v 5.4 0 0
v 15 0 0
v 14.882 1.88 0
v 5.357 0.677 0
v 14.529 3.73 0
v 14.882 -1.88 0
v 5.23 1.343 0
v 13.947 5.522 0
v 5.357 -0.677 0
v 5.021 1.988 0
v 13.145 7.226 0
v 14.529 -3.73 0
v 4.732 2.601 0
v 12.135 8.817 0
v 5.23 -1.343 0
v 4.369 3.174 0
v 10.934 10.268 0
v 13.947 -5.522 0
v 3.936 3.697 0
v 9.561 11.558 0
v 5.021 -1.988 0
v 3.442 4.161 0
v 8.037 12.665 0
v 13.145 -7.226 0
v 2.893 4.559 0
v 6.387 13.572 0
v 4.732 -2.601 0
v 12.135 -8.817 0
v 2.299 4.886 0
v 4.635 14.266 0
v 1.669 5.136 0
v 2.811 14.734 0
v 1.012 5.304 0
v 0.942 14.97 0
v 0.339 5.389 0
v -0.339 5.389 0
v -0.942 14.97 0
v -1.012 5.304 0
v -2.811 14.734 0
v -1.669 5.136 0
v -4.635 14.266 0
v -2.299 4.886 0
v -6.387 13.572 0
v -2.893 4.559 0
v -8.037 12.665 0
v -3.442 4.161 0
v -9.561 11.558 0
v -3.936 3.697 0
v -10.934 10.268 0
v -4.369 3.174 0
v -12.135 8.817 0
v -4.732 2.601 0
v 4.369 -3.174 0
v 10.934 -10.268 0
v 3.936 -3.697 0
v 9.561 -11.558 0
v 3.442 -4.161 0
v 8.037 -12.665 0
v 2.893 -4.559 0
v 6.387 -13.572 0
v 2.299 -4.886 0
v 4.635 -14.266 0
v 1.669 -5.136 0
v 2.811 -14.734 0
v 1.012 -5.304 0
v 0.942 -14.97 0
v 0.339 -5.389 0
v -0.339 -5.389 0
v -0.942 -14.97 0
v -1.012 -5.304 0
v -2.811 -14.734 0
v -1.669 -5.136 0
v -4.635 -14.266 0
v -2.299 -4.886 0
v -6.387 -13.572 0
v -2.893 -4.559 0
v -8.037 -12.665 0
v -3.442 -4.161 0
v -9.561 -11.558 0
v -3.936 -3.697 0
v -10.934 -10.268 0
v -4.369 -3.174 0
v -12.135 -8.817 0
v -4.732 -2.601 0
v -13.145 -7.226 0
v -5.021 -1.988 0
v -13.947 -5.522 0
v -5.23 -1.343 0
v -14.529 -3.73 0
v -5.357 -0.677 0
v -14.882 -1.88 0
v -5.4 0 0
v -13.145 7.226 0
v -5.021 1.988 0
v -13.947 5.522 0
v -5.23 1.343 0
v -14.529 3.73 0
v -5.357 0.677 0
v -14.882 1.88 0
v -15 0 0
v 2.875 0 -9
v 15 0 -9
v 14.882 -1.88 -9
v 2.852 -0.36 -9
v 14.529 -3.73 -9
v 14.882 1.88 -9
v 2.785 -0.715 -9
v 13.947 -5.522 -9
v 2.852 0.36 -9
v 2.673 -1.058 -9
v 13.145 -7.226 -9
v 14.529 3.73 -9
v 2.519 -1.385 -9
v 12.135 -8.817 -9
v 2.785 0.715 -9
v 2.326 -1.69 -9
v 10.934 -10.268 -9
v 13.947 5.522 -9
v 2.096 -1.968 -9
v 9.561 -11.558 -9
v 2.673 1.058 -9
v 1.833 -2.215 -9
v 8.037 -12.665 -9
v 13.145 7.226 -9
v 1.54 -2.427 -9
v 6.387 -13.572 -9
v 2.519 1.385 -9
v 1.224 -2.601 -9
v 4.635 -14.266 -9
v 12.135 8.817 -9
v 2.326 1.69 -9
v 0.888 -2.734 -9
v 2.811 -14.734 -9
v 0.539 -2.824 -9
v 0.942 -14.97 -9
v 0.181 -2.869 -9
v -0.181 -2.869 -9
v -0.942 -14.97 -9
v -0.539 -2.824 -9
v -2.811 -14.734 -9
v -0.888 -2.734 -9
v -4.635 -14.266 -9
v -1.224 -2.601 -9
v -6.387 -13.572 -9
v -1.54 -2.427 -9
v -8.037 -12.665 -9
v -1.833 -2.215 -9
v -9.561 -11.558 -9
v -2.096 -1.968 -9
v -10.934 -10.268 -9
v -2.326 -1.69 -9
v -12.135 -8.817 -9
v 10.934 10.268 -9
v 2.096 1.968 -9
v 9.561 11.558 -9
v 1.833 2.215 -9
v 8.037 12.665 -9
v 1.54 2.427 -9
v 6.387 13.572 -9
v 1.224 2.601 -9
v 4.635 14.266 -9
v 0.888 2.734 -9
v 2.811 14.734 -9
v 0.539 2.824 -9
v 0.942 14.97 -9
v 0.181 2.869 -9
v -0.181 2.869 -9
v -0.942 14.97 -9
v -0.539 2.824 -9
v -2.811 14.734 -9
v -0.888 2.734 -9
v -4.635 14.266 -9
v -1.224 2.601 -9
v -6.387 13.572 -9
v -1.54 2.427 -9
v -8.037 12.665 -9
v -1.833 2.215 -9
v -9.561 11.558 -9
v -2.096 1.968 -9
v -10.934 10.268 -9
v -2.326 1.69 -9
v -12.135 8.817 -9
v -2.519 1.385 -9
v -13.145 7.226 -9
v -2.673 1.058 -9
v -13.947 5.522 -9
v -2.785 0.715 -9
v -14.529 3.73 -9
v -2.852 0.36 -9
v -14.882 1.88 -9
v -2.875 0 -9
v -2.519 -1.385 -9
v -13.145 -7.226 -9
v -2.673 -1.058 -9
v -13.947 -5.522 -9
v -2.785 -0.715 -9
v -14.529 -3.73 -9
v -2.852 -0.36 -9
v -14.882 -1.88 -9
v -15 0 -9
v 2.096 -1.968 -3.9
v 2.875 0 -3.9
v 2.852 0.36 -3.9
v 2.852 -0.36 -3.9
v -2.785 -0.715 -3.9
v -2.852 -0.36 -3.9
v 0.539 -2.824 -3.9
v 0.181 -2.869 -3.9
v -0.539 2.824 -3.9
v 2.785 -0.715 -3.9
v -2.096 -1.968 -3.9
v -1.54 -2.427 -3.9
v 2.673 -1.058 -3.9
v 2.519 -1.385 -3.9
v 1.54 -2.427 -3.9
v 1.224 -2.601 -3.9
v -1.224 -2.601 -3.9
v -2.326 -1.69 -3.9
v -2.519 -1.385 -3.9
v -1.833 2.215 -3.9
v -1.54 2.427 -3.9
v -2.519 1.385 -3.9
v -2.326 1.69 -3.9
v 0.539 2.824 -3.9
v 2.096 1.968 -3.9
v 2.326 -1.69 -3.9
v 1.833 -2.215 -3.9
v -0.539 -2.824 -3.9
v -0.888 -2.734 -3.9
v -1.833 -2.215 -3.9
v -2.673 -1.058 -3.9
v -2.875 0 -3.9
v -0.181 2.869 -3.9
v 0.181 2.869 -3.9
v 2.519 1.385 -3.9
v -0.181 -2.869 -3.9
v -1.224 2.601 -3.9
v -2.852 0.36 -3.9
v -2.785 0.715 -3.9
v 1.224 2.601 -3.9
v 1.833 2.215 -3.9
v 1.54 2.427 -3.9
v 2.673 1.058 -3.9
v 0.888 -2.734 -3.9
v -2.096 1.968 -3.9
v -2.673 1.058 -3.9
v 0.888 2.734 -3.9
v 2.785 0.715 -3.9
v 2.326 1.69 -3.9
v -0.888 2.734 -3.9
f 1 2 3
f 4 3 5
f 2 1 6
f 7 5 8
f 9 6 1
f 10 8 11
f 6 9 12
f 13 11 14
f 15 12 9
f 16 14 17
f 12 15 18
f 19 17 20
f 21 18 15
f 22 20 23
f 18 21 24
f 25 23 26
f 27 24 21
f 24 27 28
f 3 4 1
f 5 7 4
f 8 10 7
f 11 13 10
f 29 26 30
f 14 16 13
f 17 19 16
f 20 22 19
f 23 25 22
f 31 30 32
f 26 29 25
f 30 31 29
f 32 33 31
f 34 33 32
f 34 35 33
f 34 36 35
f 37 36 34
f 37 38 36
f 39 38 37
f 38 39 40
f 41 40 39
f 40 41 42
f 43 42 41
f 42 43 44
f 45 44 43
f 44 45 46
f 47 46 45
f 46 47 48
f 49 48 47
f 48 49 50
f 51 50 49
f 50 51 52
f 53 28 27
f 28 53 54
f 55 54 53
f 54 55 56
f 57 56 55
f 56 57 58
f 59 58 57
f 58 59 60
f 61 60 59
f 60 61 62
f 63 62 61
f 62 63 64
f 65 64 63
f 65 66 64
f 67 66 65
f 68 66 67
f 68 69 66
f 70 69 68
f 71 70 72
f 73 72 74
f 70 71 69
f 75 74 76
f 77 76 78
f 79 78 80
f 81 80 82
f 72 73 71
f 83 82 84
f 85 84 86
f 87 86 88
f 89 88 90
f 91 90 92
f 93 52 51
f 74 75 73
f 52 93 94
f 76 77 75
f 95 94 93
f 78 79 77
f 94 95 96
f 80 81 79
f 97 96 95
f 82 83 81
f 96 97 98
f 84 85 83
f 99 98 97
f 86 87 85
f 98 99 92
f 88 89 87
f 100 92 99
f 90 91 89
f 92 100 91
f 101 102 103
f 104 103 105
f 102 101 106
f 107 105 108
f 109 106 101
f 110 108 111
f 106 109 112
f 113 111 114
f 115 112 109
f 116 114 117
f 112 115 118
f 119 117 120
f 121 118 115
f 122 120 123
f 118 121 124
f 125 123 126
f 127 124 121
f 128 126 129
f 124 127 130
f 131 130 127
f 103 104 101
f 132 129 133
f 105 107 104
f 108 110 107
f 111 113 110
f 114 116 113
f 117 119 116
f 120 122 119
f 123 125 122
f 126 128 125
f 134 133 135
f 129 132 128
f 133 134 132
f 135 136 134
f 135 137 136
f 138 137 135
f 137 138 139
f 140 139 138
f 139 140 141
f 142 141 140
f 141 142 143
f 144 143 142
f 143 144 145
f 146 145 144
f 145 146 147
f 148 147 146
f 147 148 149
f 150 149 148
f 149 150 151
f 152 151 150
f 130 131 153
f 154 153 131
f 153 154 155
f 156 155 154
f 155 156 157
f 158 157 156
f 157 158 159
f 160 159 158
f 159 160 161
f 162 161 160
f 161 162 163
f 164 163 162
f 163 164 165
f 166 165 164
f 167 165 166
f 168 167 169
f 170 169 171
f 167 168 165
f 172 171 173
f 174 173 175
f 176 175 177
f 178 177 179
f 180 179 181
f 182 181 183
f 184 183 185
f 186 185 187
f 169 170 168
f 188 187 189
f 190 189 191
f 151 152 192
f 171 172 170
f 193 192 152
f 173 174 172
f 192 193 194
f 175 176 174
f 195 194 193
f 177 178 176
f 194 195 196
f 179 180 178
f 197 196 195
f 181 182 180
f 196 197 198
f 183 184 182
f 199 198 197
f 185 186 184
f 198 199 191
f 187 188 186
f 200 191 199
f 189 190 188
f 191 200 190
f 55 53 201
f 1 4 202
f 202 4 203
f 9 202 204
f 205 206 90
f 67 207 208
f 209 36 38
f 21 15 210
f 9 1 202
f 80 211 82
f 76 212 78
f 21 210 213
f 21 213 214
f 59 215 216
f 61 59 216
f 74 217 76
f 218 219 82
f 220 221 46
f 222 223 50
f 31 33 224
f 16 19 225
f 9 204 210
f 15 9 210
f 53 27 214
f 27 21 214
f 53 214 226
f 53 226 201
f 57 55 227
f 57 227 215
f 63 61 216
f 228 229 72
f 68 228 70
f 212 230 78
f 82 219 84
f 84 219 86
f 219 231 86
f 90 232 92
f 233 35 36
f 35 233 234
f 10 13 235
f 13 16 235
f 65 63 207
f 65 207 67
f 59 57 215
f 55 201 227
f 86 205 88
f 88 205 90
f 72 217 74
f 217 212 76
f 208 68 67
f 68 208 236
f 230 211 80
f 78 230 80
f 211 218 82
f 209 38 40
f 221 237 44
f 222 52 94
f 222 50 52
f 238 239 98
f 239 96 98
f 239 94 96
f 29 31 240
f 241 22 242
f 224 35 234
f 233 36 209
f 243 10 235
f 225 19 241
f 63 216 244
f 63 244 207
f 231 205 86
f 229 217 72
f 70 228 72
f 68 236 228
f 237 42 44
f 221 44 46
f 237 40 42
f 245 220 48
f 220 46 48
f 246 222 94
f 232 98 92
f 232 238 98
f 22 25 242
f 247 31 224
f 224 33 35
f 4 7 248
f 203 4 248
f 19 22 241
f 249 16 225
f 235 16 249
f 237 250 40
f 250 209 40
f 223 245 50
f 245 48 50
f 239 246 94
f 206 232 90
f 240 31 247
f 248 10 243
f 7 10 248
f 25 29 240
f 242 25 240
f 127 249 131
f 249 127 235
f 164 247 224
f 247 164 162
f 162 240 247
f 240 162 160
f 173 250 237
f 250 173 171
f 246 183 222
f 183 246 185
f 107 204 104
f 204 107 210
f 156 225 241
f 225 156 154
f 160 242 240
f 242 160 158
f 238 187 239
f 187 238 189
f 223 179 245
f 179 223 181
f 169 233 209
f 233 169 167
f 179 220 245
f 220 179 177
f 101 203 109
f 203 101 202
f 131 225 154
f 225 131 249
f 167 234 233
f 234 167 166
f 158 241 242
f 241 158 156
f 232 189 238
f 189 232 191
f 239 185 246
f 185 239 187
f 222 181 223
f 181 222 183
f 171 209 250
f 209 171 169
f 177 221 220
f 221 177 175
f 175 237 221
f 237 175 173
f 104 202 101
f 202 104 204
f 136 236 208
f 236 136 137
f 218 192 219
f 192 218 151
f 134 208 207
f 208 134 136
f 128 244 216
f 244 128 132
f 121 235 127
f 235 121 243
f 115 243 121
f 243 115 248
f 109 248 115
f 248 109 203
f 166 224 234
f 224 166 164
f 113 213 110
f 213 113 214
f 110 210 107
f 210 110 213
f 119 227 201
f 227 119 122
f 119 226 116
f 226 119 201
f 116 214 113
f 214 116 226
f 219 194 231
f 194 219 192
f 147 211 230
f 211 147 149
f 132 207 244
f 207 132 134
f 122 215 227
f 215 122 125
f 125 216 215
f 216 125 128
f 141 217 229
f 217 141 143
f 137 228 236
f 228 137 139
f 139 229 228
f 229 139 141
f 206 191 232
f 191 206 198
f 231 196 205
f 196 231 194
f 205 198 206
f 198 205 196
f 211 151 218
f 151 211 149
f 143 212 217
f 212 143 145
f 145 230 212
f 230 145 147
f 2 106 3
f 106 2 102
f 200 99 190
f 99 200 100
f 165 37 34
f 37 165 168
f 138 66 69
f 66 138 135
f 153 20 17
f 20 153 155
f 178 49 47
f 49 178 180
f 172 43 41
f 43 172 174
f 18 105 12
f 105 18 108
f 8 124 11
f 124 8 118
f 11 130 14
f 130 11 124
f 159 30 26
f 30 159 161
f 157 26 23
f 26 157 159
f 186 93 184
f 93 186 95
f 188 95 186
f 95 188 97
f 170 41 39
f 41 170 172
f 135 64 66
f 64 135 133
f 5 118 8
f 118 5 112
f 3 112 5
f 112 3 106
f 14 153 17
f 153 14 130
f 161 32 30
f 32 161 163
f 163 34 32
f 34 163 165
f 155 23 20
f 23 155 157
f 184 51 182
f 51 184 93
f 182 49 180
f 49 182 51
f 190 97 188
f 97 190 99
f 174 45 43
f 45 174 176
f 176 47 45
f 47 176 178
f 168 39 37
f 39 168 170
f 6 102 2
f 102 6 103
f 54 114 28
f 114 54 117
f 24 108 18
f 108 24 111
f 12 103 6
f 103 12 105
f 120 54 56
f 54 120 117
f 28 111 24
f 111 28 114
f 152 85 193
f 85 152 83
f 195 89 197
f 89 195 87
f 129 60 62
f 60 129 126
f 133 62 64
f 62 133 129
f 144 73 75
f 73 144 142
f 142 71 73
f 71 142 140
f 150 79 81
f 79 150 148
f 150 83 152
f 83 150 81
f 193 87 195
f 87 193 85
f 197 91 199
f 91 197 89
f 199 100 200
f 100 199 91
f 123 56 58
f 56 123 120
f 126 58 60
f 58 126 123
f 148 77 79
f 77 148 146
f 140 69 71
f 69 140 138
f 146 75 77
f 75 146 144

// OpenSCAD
$fn = 50;


difference() {
	union() {
		translate(v = [0, 0, -9.0000000000]) {
			cylinder(h = 9, r = 15.0000000000);
		}
	}
	union() {
		translate(v = [0, 0, 0]) {
			rotate(a = [0, 0, 0]) {
				difference() {
					union() {
						translate(v = [0, 0, -9.0000000000]) {
							cylinder(h = 9, r = 2.6000000000);
						}
						translate(v = [0, 0, -3.9000000000]) {
							cylinder(h = 3.9000000000, r1 = 2.8750000000, r2 = 5.4000000000);
						}
						translate(v = [0, 0, -9.0000000000]) {
							cylinder(h = 9, r = 2.8750000000);
						}
						translate(v = [0, 0, -9.0000000000]) {
							cylinder(h = 9, r = 2.6000000000);
						}
					}
					union();
				}
			}
		}
	}
}
